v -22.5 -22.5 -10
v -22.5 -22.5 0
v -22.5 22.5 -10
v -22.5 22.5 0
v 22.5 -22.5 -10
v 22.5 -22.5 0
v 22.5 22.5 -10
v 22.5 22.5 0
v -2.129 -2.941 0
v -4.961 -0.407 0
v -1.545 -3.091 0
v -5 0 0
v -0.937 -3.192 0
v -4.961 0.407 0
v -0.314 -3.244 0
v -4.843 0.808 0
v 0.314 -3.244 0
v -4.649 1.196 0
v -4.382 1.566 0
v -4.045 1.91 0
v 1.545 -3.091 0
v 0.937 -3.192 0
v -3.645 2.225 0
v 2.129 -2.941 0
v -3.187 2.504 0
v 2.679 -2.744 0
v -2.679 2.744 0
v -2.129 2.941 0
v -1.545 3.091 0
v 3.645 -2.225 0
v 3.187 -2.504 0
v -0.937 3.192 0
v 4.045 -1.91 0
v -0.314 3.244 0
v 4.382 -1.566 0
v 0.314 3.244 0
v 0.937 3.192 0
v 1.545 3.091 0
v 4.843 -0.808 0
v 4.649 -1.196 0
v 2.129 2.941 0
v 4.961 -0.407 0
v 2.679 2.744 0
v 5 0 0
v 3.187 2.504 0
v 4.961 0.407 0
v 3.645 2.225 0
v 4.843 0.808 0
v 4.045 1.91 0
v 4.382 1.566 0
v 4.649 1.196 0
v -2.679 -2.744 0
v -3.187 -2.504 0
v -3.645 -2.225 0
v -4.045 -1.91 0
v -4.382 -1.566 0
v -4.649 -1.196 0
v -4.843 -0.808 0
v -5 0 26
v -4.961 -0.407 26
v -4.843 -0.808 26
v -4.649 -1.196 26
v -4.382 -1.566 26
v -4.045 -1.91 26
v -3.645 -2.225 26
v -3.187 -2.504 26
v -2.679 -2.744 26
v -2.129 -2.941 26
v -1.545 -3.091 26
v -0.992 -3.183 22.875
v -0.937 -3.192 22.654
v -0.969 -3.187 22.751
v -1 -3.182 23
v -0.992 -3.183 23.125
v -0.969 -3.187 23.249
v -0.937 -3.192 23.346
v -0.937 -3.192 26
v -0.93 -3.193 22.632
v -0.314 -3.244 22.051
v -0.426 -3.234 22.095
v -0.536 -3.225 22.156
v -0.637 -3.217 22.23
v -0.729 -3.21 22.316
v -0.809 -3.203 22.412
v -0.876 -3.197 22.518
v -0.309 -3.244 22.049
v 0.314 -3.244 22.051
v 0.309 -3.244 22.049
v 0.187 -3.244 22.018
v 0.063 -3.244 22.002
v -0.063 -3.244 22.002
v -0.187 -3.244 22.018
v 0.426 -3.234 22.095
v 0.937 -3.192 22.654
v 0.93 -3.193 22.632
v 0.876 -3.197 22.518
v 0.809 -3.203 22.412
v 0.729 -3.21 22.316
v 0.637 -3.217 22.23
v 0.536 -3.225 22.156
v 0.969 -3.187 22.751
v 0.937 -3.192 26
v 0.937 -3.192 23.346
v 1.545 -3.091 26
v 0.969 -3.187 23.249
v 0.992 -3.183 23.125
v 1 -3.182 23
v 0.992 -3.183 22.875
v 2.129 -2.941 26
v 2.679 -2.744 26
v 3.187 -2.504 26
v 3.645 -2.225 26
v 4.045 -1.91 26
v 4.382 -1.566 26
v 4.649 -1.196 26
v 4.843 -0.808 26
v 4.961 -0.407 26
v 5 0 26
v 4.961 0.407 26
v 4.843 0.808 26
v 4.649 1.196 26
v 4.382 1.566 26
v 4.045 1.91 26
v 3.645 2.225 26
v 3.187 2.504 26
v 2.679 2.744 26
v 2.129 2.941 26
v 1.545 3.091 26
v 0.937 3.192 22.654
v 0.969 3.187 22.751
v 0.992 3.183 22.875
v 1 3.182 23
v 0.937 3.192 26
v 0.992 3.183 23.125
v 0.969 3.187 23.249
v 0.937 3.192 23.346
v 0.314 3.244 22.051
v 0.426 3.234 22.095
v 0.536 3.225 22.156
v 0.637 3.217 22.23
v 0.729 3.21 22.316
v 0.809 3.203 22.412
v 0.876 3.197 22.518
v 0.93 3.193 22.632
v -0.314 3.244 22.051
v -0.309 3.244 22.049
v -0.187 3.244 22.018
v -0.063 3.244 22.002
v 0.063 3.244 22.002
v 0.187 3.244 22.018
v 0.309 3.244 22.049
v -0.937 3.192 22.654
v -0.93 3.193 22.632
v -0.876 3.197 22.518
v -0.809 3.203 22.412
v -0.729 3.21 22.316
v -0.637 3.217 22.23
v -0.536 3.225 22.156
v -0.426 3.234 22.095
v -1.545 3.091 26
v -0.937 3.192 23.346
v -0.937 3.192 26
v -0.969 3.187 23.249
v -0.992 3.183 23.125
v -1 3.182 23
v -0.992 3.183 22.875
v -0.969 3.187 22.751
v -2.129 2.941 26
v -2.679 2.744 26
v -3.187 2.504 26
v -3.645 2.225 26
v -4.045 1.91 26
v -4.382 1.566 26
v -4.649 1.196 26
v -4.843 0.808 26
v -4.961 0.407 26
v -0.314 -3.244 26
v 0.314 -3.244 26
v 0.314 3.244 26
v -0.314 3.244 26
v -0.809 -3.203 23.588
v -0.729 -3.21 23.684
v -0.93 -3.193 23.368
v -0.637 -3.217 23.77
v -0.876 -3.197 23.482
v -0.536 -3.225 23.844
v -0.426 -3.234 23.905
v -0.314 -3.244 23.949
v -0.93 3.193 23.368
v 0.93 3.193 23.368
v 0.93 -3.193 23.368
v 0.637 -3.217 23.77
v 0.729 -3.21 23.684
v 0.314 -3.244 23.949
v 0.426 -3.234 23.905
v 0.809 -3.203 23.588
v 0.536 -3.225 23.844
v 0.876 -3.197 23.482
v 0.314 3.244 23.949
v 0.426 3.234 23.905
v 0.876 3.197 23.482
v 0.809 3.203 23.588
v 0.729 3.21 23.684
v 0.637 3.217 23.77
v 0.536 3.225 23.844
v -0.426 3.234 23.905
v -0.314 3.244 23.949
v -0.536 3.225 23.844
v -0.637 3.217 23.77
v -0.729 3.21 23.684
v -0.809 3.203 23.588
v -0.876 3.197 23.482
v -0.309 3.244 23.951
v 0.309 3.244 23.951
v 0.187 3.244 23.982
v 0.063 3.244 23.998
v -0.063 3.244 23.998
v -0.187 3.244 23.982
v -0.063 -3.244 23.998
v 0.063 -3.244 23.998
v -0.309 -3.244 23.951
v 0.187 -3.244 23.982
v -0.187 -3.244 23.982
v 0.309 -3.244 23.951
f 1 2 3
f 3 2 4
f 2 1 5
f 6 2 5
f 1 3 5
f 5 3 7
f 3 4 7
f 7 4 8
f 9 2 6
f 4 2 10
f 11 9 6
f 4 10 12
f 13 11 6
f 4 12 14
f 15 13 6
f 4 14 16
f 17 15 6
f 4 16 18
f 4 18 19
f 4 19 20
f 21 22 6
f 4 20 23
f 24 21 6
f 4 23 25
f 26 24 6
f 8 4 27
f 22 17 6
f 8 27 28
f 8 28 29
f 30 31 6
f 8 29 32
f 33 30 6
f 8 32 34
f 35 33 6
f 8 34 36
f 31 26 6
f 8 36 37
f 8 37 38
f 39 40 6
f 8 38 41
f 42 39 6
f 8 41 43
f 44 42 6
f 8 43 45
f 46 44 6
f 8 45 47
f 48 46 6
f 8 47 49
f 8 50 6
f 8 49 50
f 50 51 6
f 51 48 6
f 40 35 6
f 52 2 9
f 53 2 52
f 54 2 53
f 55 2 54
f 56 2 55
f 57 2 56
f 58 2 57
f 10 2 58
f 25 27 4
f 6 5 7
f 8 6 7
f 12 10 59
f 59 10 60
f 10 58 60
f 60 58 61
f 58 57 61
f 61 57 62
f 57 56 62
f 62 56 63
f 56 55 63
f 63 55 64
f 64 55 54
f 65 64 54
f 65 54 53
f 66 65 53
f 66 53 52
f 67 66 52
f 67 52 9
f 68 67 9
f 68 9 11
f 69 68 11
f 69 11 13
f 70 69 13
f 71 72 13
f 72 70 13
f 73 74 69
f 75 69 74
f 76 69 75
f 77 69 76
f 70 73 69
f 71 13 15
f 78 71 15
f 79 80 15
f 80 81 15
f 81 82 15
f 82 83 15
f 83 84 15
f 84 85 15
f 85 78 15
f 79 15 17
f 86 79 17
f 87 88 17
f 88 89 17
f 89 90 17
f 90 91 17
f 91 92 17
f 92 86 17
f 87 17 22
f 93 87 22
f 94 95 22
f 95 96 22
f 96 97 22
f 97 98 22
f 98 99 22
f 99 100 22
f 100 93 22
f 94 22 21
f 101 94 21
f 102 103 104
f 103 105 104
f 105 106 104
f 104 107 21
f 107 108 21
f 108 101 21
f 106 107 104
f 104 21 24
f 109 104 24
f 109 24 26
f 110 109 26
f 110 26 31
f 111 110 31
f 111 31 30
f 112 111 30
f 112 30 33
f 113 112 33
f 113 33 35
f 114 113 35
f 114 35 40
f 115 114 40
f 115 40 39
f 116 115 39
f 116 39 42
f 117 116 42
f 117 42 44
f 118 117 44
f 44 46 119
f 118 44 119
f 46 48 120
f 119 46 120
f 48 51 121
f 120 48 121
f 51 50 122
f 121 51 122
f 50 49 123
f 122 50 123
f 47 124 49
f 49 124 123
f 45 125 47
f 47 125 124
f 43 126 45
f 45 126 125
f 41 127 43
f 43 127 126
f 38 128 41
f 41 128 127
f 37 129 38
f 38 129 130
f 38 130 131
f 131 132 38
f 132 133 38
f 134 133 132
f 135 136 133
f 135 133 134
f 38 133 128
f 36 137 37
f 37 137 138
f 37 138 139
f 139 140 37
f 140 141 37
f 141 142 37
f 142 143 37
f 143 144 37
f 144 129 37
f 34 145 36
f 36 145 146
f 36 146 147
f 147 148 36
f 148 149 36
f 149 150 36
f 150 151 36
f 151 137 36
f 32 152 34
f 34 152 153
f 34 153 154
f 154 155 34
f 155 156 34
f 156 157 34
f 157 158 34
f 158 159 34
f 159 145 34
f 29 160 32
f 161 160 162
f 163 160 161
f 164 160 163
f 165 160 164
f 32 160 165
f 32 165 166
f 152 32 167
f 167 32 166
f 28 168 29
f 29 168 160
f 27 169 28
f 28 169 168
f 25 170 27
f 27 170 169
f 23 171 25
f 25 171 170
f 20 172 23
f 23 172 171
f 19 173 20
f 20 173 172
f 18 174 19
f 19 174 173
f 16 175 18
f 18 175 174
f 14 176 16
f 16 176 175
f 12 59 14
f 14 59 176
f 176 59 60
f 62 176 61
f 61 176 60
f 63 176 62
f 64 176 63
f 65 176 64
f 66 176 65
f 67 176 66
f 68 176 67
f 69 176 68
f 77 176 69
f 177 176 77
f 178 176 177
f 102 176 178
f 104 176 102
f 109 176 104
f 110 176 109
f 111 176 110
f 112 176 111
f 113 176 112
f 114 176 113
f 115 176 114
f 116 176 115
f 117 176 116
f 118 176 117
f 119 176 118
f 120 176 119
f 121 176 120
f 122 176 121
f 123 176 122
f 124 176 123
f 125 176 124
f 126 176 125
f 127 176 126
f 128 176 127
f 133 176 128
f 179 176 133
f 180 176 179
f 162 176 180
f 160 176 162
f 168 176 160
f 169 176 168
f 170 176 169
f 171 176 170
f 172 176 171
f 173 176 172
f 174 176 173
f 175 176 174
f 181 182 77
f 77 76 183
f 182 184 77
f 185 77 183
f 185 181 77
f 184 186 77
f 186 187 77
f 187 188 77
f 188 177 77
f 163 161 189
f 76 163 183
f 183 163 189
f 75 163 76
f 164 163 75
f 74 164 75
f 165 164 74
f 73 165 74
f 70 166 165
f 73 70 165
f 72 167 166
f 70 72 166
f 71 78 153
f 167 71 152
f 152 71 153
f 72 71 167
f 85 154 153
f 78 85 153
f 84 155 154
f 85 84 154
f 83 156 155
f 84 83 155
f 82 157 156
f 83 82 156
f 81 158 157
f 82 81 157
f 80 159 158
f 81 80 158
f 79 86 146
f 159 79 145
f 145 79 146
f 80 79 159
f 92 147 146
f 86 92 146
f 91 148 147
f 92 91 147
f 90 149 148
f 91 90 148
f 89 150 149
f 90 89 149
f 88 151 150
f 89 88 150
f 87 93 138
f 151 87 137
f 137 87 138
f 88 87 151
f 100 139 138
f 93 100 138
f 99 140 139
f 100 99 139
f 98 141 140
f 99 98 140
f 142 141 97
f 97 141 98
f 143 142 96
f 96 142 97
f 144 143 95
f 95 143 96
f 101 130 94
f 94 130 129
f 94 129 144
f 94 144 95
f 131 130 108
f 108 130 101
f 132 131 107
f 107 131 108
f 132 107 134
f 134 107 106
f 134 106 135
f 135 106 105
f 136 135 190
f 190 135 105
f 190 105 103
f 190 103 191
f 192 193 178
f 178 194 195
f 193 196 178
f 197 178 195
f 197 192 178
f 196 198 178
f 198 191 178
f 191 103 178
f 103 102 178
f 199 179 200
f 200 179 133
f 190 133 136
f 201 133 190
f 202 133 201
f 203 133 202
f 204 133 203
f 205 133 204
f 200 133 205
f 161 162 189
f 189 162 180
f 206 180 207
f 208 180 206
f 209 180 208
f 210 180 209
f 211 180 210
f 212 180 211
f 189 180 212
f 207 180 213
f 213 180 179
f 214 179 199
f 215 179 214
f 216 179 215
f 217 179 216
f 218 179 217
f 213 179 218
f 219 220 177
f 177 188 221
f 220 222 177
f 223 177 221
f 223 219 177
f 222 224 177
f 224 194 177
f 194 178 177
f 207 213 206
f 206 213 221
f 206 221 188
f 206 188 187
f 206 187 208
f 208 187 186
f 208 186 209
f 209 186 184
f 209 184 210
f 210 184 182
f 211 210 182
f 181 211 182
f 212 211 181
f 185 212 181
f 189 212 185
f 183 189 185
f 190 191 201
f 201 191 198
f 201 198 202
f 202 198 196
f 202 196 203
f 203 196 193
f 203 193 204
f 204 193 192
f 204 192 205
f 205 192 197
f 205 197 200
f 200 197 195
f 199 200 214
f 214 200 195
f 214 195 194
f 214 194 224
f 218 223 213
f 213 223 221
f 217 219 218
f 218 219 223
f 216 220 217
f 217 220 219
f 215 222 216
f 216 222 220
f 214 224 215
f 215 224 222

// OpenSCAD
$fn=50;
module hold() {
	difference() {
		scale([10,6.5])cylinder(r=0.5,h=26);
		translate([0,0,23])rotate([90,0,0])cylinder(r=1,h=10,center=true);
	}
}
module base() {
	translate([0,0,-5])cube([45,45,10],center=true);
}

hold();
base();
